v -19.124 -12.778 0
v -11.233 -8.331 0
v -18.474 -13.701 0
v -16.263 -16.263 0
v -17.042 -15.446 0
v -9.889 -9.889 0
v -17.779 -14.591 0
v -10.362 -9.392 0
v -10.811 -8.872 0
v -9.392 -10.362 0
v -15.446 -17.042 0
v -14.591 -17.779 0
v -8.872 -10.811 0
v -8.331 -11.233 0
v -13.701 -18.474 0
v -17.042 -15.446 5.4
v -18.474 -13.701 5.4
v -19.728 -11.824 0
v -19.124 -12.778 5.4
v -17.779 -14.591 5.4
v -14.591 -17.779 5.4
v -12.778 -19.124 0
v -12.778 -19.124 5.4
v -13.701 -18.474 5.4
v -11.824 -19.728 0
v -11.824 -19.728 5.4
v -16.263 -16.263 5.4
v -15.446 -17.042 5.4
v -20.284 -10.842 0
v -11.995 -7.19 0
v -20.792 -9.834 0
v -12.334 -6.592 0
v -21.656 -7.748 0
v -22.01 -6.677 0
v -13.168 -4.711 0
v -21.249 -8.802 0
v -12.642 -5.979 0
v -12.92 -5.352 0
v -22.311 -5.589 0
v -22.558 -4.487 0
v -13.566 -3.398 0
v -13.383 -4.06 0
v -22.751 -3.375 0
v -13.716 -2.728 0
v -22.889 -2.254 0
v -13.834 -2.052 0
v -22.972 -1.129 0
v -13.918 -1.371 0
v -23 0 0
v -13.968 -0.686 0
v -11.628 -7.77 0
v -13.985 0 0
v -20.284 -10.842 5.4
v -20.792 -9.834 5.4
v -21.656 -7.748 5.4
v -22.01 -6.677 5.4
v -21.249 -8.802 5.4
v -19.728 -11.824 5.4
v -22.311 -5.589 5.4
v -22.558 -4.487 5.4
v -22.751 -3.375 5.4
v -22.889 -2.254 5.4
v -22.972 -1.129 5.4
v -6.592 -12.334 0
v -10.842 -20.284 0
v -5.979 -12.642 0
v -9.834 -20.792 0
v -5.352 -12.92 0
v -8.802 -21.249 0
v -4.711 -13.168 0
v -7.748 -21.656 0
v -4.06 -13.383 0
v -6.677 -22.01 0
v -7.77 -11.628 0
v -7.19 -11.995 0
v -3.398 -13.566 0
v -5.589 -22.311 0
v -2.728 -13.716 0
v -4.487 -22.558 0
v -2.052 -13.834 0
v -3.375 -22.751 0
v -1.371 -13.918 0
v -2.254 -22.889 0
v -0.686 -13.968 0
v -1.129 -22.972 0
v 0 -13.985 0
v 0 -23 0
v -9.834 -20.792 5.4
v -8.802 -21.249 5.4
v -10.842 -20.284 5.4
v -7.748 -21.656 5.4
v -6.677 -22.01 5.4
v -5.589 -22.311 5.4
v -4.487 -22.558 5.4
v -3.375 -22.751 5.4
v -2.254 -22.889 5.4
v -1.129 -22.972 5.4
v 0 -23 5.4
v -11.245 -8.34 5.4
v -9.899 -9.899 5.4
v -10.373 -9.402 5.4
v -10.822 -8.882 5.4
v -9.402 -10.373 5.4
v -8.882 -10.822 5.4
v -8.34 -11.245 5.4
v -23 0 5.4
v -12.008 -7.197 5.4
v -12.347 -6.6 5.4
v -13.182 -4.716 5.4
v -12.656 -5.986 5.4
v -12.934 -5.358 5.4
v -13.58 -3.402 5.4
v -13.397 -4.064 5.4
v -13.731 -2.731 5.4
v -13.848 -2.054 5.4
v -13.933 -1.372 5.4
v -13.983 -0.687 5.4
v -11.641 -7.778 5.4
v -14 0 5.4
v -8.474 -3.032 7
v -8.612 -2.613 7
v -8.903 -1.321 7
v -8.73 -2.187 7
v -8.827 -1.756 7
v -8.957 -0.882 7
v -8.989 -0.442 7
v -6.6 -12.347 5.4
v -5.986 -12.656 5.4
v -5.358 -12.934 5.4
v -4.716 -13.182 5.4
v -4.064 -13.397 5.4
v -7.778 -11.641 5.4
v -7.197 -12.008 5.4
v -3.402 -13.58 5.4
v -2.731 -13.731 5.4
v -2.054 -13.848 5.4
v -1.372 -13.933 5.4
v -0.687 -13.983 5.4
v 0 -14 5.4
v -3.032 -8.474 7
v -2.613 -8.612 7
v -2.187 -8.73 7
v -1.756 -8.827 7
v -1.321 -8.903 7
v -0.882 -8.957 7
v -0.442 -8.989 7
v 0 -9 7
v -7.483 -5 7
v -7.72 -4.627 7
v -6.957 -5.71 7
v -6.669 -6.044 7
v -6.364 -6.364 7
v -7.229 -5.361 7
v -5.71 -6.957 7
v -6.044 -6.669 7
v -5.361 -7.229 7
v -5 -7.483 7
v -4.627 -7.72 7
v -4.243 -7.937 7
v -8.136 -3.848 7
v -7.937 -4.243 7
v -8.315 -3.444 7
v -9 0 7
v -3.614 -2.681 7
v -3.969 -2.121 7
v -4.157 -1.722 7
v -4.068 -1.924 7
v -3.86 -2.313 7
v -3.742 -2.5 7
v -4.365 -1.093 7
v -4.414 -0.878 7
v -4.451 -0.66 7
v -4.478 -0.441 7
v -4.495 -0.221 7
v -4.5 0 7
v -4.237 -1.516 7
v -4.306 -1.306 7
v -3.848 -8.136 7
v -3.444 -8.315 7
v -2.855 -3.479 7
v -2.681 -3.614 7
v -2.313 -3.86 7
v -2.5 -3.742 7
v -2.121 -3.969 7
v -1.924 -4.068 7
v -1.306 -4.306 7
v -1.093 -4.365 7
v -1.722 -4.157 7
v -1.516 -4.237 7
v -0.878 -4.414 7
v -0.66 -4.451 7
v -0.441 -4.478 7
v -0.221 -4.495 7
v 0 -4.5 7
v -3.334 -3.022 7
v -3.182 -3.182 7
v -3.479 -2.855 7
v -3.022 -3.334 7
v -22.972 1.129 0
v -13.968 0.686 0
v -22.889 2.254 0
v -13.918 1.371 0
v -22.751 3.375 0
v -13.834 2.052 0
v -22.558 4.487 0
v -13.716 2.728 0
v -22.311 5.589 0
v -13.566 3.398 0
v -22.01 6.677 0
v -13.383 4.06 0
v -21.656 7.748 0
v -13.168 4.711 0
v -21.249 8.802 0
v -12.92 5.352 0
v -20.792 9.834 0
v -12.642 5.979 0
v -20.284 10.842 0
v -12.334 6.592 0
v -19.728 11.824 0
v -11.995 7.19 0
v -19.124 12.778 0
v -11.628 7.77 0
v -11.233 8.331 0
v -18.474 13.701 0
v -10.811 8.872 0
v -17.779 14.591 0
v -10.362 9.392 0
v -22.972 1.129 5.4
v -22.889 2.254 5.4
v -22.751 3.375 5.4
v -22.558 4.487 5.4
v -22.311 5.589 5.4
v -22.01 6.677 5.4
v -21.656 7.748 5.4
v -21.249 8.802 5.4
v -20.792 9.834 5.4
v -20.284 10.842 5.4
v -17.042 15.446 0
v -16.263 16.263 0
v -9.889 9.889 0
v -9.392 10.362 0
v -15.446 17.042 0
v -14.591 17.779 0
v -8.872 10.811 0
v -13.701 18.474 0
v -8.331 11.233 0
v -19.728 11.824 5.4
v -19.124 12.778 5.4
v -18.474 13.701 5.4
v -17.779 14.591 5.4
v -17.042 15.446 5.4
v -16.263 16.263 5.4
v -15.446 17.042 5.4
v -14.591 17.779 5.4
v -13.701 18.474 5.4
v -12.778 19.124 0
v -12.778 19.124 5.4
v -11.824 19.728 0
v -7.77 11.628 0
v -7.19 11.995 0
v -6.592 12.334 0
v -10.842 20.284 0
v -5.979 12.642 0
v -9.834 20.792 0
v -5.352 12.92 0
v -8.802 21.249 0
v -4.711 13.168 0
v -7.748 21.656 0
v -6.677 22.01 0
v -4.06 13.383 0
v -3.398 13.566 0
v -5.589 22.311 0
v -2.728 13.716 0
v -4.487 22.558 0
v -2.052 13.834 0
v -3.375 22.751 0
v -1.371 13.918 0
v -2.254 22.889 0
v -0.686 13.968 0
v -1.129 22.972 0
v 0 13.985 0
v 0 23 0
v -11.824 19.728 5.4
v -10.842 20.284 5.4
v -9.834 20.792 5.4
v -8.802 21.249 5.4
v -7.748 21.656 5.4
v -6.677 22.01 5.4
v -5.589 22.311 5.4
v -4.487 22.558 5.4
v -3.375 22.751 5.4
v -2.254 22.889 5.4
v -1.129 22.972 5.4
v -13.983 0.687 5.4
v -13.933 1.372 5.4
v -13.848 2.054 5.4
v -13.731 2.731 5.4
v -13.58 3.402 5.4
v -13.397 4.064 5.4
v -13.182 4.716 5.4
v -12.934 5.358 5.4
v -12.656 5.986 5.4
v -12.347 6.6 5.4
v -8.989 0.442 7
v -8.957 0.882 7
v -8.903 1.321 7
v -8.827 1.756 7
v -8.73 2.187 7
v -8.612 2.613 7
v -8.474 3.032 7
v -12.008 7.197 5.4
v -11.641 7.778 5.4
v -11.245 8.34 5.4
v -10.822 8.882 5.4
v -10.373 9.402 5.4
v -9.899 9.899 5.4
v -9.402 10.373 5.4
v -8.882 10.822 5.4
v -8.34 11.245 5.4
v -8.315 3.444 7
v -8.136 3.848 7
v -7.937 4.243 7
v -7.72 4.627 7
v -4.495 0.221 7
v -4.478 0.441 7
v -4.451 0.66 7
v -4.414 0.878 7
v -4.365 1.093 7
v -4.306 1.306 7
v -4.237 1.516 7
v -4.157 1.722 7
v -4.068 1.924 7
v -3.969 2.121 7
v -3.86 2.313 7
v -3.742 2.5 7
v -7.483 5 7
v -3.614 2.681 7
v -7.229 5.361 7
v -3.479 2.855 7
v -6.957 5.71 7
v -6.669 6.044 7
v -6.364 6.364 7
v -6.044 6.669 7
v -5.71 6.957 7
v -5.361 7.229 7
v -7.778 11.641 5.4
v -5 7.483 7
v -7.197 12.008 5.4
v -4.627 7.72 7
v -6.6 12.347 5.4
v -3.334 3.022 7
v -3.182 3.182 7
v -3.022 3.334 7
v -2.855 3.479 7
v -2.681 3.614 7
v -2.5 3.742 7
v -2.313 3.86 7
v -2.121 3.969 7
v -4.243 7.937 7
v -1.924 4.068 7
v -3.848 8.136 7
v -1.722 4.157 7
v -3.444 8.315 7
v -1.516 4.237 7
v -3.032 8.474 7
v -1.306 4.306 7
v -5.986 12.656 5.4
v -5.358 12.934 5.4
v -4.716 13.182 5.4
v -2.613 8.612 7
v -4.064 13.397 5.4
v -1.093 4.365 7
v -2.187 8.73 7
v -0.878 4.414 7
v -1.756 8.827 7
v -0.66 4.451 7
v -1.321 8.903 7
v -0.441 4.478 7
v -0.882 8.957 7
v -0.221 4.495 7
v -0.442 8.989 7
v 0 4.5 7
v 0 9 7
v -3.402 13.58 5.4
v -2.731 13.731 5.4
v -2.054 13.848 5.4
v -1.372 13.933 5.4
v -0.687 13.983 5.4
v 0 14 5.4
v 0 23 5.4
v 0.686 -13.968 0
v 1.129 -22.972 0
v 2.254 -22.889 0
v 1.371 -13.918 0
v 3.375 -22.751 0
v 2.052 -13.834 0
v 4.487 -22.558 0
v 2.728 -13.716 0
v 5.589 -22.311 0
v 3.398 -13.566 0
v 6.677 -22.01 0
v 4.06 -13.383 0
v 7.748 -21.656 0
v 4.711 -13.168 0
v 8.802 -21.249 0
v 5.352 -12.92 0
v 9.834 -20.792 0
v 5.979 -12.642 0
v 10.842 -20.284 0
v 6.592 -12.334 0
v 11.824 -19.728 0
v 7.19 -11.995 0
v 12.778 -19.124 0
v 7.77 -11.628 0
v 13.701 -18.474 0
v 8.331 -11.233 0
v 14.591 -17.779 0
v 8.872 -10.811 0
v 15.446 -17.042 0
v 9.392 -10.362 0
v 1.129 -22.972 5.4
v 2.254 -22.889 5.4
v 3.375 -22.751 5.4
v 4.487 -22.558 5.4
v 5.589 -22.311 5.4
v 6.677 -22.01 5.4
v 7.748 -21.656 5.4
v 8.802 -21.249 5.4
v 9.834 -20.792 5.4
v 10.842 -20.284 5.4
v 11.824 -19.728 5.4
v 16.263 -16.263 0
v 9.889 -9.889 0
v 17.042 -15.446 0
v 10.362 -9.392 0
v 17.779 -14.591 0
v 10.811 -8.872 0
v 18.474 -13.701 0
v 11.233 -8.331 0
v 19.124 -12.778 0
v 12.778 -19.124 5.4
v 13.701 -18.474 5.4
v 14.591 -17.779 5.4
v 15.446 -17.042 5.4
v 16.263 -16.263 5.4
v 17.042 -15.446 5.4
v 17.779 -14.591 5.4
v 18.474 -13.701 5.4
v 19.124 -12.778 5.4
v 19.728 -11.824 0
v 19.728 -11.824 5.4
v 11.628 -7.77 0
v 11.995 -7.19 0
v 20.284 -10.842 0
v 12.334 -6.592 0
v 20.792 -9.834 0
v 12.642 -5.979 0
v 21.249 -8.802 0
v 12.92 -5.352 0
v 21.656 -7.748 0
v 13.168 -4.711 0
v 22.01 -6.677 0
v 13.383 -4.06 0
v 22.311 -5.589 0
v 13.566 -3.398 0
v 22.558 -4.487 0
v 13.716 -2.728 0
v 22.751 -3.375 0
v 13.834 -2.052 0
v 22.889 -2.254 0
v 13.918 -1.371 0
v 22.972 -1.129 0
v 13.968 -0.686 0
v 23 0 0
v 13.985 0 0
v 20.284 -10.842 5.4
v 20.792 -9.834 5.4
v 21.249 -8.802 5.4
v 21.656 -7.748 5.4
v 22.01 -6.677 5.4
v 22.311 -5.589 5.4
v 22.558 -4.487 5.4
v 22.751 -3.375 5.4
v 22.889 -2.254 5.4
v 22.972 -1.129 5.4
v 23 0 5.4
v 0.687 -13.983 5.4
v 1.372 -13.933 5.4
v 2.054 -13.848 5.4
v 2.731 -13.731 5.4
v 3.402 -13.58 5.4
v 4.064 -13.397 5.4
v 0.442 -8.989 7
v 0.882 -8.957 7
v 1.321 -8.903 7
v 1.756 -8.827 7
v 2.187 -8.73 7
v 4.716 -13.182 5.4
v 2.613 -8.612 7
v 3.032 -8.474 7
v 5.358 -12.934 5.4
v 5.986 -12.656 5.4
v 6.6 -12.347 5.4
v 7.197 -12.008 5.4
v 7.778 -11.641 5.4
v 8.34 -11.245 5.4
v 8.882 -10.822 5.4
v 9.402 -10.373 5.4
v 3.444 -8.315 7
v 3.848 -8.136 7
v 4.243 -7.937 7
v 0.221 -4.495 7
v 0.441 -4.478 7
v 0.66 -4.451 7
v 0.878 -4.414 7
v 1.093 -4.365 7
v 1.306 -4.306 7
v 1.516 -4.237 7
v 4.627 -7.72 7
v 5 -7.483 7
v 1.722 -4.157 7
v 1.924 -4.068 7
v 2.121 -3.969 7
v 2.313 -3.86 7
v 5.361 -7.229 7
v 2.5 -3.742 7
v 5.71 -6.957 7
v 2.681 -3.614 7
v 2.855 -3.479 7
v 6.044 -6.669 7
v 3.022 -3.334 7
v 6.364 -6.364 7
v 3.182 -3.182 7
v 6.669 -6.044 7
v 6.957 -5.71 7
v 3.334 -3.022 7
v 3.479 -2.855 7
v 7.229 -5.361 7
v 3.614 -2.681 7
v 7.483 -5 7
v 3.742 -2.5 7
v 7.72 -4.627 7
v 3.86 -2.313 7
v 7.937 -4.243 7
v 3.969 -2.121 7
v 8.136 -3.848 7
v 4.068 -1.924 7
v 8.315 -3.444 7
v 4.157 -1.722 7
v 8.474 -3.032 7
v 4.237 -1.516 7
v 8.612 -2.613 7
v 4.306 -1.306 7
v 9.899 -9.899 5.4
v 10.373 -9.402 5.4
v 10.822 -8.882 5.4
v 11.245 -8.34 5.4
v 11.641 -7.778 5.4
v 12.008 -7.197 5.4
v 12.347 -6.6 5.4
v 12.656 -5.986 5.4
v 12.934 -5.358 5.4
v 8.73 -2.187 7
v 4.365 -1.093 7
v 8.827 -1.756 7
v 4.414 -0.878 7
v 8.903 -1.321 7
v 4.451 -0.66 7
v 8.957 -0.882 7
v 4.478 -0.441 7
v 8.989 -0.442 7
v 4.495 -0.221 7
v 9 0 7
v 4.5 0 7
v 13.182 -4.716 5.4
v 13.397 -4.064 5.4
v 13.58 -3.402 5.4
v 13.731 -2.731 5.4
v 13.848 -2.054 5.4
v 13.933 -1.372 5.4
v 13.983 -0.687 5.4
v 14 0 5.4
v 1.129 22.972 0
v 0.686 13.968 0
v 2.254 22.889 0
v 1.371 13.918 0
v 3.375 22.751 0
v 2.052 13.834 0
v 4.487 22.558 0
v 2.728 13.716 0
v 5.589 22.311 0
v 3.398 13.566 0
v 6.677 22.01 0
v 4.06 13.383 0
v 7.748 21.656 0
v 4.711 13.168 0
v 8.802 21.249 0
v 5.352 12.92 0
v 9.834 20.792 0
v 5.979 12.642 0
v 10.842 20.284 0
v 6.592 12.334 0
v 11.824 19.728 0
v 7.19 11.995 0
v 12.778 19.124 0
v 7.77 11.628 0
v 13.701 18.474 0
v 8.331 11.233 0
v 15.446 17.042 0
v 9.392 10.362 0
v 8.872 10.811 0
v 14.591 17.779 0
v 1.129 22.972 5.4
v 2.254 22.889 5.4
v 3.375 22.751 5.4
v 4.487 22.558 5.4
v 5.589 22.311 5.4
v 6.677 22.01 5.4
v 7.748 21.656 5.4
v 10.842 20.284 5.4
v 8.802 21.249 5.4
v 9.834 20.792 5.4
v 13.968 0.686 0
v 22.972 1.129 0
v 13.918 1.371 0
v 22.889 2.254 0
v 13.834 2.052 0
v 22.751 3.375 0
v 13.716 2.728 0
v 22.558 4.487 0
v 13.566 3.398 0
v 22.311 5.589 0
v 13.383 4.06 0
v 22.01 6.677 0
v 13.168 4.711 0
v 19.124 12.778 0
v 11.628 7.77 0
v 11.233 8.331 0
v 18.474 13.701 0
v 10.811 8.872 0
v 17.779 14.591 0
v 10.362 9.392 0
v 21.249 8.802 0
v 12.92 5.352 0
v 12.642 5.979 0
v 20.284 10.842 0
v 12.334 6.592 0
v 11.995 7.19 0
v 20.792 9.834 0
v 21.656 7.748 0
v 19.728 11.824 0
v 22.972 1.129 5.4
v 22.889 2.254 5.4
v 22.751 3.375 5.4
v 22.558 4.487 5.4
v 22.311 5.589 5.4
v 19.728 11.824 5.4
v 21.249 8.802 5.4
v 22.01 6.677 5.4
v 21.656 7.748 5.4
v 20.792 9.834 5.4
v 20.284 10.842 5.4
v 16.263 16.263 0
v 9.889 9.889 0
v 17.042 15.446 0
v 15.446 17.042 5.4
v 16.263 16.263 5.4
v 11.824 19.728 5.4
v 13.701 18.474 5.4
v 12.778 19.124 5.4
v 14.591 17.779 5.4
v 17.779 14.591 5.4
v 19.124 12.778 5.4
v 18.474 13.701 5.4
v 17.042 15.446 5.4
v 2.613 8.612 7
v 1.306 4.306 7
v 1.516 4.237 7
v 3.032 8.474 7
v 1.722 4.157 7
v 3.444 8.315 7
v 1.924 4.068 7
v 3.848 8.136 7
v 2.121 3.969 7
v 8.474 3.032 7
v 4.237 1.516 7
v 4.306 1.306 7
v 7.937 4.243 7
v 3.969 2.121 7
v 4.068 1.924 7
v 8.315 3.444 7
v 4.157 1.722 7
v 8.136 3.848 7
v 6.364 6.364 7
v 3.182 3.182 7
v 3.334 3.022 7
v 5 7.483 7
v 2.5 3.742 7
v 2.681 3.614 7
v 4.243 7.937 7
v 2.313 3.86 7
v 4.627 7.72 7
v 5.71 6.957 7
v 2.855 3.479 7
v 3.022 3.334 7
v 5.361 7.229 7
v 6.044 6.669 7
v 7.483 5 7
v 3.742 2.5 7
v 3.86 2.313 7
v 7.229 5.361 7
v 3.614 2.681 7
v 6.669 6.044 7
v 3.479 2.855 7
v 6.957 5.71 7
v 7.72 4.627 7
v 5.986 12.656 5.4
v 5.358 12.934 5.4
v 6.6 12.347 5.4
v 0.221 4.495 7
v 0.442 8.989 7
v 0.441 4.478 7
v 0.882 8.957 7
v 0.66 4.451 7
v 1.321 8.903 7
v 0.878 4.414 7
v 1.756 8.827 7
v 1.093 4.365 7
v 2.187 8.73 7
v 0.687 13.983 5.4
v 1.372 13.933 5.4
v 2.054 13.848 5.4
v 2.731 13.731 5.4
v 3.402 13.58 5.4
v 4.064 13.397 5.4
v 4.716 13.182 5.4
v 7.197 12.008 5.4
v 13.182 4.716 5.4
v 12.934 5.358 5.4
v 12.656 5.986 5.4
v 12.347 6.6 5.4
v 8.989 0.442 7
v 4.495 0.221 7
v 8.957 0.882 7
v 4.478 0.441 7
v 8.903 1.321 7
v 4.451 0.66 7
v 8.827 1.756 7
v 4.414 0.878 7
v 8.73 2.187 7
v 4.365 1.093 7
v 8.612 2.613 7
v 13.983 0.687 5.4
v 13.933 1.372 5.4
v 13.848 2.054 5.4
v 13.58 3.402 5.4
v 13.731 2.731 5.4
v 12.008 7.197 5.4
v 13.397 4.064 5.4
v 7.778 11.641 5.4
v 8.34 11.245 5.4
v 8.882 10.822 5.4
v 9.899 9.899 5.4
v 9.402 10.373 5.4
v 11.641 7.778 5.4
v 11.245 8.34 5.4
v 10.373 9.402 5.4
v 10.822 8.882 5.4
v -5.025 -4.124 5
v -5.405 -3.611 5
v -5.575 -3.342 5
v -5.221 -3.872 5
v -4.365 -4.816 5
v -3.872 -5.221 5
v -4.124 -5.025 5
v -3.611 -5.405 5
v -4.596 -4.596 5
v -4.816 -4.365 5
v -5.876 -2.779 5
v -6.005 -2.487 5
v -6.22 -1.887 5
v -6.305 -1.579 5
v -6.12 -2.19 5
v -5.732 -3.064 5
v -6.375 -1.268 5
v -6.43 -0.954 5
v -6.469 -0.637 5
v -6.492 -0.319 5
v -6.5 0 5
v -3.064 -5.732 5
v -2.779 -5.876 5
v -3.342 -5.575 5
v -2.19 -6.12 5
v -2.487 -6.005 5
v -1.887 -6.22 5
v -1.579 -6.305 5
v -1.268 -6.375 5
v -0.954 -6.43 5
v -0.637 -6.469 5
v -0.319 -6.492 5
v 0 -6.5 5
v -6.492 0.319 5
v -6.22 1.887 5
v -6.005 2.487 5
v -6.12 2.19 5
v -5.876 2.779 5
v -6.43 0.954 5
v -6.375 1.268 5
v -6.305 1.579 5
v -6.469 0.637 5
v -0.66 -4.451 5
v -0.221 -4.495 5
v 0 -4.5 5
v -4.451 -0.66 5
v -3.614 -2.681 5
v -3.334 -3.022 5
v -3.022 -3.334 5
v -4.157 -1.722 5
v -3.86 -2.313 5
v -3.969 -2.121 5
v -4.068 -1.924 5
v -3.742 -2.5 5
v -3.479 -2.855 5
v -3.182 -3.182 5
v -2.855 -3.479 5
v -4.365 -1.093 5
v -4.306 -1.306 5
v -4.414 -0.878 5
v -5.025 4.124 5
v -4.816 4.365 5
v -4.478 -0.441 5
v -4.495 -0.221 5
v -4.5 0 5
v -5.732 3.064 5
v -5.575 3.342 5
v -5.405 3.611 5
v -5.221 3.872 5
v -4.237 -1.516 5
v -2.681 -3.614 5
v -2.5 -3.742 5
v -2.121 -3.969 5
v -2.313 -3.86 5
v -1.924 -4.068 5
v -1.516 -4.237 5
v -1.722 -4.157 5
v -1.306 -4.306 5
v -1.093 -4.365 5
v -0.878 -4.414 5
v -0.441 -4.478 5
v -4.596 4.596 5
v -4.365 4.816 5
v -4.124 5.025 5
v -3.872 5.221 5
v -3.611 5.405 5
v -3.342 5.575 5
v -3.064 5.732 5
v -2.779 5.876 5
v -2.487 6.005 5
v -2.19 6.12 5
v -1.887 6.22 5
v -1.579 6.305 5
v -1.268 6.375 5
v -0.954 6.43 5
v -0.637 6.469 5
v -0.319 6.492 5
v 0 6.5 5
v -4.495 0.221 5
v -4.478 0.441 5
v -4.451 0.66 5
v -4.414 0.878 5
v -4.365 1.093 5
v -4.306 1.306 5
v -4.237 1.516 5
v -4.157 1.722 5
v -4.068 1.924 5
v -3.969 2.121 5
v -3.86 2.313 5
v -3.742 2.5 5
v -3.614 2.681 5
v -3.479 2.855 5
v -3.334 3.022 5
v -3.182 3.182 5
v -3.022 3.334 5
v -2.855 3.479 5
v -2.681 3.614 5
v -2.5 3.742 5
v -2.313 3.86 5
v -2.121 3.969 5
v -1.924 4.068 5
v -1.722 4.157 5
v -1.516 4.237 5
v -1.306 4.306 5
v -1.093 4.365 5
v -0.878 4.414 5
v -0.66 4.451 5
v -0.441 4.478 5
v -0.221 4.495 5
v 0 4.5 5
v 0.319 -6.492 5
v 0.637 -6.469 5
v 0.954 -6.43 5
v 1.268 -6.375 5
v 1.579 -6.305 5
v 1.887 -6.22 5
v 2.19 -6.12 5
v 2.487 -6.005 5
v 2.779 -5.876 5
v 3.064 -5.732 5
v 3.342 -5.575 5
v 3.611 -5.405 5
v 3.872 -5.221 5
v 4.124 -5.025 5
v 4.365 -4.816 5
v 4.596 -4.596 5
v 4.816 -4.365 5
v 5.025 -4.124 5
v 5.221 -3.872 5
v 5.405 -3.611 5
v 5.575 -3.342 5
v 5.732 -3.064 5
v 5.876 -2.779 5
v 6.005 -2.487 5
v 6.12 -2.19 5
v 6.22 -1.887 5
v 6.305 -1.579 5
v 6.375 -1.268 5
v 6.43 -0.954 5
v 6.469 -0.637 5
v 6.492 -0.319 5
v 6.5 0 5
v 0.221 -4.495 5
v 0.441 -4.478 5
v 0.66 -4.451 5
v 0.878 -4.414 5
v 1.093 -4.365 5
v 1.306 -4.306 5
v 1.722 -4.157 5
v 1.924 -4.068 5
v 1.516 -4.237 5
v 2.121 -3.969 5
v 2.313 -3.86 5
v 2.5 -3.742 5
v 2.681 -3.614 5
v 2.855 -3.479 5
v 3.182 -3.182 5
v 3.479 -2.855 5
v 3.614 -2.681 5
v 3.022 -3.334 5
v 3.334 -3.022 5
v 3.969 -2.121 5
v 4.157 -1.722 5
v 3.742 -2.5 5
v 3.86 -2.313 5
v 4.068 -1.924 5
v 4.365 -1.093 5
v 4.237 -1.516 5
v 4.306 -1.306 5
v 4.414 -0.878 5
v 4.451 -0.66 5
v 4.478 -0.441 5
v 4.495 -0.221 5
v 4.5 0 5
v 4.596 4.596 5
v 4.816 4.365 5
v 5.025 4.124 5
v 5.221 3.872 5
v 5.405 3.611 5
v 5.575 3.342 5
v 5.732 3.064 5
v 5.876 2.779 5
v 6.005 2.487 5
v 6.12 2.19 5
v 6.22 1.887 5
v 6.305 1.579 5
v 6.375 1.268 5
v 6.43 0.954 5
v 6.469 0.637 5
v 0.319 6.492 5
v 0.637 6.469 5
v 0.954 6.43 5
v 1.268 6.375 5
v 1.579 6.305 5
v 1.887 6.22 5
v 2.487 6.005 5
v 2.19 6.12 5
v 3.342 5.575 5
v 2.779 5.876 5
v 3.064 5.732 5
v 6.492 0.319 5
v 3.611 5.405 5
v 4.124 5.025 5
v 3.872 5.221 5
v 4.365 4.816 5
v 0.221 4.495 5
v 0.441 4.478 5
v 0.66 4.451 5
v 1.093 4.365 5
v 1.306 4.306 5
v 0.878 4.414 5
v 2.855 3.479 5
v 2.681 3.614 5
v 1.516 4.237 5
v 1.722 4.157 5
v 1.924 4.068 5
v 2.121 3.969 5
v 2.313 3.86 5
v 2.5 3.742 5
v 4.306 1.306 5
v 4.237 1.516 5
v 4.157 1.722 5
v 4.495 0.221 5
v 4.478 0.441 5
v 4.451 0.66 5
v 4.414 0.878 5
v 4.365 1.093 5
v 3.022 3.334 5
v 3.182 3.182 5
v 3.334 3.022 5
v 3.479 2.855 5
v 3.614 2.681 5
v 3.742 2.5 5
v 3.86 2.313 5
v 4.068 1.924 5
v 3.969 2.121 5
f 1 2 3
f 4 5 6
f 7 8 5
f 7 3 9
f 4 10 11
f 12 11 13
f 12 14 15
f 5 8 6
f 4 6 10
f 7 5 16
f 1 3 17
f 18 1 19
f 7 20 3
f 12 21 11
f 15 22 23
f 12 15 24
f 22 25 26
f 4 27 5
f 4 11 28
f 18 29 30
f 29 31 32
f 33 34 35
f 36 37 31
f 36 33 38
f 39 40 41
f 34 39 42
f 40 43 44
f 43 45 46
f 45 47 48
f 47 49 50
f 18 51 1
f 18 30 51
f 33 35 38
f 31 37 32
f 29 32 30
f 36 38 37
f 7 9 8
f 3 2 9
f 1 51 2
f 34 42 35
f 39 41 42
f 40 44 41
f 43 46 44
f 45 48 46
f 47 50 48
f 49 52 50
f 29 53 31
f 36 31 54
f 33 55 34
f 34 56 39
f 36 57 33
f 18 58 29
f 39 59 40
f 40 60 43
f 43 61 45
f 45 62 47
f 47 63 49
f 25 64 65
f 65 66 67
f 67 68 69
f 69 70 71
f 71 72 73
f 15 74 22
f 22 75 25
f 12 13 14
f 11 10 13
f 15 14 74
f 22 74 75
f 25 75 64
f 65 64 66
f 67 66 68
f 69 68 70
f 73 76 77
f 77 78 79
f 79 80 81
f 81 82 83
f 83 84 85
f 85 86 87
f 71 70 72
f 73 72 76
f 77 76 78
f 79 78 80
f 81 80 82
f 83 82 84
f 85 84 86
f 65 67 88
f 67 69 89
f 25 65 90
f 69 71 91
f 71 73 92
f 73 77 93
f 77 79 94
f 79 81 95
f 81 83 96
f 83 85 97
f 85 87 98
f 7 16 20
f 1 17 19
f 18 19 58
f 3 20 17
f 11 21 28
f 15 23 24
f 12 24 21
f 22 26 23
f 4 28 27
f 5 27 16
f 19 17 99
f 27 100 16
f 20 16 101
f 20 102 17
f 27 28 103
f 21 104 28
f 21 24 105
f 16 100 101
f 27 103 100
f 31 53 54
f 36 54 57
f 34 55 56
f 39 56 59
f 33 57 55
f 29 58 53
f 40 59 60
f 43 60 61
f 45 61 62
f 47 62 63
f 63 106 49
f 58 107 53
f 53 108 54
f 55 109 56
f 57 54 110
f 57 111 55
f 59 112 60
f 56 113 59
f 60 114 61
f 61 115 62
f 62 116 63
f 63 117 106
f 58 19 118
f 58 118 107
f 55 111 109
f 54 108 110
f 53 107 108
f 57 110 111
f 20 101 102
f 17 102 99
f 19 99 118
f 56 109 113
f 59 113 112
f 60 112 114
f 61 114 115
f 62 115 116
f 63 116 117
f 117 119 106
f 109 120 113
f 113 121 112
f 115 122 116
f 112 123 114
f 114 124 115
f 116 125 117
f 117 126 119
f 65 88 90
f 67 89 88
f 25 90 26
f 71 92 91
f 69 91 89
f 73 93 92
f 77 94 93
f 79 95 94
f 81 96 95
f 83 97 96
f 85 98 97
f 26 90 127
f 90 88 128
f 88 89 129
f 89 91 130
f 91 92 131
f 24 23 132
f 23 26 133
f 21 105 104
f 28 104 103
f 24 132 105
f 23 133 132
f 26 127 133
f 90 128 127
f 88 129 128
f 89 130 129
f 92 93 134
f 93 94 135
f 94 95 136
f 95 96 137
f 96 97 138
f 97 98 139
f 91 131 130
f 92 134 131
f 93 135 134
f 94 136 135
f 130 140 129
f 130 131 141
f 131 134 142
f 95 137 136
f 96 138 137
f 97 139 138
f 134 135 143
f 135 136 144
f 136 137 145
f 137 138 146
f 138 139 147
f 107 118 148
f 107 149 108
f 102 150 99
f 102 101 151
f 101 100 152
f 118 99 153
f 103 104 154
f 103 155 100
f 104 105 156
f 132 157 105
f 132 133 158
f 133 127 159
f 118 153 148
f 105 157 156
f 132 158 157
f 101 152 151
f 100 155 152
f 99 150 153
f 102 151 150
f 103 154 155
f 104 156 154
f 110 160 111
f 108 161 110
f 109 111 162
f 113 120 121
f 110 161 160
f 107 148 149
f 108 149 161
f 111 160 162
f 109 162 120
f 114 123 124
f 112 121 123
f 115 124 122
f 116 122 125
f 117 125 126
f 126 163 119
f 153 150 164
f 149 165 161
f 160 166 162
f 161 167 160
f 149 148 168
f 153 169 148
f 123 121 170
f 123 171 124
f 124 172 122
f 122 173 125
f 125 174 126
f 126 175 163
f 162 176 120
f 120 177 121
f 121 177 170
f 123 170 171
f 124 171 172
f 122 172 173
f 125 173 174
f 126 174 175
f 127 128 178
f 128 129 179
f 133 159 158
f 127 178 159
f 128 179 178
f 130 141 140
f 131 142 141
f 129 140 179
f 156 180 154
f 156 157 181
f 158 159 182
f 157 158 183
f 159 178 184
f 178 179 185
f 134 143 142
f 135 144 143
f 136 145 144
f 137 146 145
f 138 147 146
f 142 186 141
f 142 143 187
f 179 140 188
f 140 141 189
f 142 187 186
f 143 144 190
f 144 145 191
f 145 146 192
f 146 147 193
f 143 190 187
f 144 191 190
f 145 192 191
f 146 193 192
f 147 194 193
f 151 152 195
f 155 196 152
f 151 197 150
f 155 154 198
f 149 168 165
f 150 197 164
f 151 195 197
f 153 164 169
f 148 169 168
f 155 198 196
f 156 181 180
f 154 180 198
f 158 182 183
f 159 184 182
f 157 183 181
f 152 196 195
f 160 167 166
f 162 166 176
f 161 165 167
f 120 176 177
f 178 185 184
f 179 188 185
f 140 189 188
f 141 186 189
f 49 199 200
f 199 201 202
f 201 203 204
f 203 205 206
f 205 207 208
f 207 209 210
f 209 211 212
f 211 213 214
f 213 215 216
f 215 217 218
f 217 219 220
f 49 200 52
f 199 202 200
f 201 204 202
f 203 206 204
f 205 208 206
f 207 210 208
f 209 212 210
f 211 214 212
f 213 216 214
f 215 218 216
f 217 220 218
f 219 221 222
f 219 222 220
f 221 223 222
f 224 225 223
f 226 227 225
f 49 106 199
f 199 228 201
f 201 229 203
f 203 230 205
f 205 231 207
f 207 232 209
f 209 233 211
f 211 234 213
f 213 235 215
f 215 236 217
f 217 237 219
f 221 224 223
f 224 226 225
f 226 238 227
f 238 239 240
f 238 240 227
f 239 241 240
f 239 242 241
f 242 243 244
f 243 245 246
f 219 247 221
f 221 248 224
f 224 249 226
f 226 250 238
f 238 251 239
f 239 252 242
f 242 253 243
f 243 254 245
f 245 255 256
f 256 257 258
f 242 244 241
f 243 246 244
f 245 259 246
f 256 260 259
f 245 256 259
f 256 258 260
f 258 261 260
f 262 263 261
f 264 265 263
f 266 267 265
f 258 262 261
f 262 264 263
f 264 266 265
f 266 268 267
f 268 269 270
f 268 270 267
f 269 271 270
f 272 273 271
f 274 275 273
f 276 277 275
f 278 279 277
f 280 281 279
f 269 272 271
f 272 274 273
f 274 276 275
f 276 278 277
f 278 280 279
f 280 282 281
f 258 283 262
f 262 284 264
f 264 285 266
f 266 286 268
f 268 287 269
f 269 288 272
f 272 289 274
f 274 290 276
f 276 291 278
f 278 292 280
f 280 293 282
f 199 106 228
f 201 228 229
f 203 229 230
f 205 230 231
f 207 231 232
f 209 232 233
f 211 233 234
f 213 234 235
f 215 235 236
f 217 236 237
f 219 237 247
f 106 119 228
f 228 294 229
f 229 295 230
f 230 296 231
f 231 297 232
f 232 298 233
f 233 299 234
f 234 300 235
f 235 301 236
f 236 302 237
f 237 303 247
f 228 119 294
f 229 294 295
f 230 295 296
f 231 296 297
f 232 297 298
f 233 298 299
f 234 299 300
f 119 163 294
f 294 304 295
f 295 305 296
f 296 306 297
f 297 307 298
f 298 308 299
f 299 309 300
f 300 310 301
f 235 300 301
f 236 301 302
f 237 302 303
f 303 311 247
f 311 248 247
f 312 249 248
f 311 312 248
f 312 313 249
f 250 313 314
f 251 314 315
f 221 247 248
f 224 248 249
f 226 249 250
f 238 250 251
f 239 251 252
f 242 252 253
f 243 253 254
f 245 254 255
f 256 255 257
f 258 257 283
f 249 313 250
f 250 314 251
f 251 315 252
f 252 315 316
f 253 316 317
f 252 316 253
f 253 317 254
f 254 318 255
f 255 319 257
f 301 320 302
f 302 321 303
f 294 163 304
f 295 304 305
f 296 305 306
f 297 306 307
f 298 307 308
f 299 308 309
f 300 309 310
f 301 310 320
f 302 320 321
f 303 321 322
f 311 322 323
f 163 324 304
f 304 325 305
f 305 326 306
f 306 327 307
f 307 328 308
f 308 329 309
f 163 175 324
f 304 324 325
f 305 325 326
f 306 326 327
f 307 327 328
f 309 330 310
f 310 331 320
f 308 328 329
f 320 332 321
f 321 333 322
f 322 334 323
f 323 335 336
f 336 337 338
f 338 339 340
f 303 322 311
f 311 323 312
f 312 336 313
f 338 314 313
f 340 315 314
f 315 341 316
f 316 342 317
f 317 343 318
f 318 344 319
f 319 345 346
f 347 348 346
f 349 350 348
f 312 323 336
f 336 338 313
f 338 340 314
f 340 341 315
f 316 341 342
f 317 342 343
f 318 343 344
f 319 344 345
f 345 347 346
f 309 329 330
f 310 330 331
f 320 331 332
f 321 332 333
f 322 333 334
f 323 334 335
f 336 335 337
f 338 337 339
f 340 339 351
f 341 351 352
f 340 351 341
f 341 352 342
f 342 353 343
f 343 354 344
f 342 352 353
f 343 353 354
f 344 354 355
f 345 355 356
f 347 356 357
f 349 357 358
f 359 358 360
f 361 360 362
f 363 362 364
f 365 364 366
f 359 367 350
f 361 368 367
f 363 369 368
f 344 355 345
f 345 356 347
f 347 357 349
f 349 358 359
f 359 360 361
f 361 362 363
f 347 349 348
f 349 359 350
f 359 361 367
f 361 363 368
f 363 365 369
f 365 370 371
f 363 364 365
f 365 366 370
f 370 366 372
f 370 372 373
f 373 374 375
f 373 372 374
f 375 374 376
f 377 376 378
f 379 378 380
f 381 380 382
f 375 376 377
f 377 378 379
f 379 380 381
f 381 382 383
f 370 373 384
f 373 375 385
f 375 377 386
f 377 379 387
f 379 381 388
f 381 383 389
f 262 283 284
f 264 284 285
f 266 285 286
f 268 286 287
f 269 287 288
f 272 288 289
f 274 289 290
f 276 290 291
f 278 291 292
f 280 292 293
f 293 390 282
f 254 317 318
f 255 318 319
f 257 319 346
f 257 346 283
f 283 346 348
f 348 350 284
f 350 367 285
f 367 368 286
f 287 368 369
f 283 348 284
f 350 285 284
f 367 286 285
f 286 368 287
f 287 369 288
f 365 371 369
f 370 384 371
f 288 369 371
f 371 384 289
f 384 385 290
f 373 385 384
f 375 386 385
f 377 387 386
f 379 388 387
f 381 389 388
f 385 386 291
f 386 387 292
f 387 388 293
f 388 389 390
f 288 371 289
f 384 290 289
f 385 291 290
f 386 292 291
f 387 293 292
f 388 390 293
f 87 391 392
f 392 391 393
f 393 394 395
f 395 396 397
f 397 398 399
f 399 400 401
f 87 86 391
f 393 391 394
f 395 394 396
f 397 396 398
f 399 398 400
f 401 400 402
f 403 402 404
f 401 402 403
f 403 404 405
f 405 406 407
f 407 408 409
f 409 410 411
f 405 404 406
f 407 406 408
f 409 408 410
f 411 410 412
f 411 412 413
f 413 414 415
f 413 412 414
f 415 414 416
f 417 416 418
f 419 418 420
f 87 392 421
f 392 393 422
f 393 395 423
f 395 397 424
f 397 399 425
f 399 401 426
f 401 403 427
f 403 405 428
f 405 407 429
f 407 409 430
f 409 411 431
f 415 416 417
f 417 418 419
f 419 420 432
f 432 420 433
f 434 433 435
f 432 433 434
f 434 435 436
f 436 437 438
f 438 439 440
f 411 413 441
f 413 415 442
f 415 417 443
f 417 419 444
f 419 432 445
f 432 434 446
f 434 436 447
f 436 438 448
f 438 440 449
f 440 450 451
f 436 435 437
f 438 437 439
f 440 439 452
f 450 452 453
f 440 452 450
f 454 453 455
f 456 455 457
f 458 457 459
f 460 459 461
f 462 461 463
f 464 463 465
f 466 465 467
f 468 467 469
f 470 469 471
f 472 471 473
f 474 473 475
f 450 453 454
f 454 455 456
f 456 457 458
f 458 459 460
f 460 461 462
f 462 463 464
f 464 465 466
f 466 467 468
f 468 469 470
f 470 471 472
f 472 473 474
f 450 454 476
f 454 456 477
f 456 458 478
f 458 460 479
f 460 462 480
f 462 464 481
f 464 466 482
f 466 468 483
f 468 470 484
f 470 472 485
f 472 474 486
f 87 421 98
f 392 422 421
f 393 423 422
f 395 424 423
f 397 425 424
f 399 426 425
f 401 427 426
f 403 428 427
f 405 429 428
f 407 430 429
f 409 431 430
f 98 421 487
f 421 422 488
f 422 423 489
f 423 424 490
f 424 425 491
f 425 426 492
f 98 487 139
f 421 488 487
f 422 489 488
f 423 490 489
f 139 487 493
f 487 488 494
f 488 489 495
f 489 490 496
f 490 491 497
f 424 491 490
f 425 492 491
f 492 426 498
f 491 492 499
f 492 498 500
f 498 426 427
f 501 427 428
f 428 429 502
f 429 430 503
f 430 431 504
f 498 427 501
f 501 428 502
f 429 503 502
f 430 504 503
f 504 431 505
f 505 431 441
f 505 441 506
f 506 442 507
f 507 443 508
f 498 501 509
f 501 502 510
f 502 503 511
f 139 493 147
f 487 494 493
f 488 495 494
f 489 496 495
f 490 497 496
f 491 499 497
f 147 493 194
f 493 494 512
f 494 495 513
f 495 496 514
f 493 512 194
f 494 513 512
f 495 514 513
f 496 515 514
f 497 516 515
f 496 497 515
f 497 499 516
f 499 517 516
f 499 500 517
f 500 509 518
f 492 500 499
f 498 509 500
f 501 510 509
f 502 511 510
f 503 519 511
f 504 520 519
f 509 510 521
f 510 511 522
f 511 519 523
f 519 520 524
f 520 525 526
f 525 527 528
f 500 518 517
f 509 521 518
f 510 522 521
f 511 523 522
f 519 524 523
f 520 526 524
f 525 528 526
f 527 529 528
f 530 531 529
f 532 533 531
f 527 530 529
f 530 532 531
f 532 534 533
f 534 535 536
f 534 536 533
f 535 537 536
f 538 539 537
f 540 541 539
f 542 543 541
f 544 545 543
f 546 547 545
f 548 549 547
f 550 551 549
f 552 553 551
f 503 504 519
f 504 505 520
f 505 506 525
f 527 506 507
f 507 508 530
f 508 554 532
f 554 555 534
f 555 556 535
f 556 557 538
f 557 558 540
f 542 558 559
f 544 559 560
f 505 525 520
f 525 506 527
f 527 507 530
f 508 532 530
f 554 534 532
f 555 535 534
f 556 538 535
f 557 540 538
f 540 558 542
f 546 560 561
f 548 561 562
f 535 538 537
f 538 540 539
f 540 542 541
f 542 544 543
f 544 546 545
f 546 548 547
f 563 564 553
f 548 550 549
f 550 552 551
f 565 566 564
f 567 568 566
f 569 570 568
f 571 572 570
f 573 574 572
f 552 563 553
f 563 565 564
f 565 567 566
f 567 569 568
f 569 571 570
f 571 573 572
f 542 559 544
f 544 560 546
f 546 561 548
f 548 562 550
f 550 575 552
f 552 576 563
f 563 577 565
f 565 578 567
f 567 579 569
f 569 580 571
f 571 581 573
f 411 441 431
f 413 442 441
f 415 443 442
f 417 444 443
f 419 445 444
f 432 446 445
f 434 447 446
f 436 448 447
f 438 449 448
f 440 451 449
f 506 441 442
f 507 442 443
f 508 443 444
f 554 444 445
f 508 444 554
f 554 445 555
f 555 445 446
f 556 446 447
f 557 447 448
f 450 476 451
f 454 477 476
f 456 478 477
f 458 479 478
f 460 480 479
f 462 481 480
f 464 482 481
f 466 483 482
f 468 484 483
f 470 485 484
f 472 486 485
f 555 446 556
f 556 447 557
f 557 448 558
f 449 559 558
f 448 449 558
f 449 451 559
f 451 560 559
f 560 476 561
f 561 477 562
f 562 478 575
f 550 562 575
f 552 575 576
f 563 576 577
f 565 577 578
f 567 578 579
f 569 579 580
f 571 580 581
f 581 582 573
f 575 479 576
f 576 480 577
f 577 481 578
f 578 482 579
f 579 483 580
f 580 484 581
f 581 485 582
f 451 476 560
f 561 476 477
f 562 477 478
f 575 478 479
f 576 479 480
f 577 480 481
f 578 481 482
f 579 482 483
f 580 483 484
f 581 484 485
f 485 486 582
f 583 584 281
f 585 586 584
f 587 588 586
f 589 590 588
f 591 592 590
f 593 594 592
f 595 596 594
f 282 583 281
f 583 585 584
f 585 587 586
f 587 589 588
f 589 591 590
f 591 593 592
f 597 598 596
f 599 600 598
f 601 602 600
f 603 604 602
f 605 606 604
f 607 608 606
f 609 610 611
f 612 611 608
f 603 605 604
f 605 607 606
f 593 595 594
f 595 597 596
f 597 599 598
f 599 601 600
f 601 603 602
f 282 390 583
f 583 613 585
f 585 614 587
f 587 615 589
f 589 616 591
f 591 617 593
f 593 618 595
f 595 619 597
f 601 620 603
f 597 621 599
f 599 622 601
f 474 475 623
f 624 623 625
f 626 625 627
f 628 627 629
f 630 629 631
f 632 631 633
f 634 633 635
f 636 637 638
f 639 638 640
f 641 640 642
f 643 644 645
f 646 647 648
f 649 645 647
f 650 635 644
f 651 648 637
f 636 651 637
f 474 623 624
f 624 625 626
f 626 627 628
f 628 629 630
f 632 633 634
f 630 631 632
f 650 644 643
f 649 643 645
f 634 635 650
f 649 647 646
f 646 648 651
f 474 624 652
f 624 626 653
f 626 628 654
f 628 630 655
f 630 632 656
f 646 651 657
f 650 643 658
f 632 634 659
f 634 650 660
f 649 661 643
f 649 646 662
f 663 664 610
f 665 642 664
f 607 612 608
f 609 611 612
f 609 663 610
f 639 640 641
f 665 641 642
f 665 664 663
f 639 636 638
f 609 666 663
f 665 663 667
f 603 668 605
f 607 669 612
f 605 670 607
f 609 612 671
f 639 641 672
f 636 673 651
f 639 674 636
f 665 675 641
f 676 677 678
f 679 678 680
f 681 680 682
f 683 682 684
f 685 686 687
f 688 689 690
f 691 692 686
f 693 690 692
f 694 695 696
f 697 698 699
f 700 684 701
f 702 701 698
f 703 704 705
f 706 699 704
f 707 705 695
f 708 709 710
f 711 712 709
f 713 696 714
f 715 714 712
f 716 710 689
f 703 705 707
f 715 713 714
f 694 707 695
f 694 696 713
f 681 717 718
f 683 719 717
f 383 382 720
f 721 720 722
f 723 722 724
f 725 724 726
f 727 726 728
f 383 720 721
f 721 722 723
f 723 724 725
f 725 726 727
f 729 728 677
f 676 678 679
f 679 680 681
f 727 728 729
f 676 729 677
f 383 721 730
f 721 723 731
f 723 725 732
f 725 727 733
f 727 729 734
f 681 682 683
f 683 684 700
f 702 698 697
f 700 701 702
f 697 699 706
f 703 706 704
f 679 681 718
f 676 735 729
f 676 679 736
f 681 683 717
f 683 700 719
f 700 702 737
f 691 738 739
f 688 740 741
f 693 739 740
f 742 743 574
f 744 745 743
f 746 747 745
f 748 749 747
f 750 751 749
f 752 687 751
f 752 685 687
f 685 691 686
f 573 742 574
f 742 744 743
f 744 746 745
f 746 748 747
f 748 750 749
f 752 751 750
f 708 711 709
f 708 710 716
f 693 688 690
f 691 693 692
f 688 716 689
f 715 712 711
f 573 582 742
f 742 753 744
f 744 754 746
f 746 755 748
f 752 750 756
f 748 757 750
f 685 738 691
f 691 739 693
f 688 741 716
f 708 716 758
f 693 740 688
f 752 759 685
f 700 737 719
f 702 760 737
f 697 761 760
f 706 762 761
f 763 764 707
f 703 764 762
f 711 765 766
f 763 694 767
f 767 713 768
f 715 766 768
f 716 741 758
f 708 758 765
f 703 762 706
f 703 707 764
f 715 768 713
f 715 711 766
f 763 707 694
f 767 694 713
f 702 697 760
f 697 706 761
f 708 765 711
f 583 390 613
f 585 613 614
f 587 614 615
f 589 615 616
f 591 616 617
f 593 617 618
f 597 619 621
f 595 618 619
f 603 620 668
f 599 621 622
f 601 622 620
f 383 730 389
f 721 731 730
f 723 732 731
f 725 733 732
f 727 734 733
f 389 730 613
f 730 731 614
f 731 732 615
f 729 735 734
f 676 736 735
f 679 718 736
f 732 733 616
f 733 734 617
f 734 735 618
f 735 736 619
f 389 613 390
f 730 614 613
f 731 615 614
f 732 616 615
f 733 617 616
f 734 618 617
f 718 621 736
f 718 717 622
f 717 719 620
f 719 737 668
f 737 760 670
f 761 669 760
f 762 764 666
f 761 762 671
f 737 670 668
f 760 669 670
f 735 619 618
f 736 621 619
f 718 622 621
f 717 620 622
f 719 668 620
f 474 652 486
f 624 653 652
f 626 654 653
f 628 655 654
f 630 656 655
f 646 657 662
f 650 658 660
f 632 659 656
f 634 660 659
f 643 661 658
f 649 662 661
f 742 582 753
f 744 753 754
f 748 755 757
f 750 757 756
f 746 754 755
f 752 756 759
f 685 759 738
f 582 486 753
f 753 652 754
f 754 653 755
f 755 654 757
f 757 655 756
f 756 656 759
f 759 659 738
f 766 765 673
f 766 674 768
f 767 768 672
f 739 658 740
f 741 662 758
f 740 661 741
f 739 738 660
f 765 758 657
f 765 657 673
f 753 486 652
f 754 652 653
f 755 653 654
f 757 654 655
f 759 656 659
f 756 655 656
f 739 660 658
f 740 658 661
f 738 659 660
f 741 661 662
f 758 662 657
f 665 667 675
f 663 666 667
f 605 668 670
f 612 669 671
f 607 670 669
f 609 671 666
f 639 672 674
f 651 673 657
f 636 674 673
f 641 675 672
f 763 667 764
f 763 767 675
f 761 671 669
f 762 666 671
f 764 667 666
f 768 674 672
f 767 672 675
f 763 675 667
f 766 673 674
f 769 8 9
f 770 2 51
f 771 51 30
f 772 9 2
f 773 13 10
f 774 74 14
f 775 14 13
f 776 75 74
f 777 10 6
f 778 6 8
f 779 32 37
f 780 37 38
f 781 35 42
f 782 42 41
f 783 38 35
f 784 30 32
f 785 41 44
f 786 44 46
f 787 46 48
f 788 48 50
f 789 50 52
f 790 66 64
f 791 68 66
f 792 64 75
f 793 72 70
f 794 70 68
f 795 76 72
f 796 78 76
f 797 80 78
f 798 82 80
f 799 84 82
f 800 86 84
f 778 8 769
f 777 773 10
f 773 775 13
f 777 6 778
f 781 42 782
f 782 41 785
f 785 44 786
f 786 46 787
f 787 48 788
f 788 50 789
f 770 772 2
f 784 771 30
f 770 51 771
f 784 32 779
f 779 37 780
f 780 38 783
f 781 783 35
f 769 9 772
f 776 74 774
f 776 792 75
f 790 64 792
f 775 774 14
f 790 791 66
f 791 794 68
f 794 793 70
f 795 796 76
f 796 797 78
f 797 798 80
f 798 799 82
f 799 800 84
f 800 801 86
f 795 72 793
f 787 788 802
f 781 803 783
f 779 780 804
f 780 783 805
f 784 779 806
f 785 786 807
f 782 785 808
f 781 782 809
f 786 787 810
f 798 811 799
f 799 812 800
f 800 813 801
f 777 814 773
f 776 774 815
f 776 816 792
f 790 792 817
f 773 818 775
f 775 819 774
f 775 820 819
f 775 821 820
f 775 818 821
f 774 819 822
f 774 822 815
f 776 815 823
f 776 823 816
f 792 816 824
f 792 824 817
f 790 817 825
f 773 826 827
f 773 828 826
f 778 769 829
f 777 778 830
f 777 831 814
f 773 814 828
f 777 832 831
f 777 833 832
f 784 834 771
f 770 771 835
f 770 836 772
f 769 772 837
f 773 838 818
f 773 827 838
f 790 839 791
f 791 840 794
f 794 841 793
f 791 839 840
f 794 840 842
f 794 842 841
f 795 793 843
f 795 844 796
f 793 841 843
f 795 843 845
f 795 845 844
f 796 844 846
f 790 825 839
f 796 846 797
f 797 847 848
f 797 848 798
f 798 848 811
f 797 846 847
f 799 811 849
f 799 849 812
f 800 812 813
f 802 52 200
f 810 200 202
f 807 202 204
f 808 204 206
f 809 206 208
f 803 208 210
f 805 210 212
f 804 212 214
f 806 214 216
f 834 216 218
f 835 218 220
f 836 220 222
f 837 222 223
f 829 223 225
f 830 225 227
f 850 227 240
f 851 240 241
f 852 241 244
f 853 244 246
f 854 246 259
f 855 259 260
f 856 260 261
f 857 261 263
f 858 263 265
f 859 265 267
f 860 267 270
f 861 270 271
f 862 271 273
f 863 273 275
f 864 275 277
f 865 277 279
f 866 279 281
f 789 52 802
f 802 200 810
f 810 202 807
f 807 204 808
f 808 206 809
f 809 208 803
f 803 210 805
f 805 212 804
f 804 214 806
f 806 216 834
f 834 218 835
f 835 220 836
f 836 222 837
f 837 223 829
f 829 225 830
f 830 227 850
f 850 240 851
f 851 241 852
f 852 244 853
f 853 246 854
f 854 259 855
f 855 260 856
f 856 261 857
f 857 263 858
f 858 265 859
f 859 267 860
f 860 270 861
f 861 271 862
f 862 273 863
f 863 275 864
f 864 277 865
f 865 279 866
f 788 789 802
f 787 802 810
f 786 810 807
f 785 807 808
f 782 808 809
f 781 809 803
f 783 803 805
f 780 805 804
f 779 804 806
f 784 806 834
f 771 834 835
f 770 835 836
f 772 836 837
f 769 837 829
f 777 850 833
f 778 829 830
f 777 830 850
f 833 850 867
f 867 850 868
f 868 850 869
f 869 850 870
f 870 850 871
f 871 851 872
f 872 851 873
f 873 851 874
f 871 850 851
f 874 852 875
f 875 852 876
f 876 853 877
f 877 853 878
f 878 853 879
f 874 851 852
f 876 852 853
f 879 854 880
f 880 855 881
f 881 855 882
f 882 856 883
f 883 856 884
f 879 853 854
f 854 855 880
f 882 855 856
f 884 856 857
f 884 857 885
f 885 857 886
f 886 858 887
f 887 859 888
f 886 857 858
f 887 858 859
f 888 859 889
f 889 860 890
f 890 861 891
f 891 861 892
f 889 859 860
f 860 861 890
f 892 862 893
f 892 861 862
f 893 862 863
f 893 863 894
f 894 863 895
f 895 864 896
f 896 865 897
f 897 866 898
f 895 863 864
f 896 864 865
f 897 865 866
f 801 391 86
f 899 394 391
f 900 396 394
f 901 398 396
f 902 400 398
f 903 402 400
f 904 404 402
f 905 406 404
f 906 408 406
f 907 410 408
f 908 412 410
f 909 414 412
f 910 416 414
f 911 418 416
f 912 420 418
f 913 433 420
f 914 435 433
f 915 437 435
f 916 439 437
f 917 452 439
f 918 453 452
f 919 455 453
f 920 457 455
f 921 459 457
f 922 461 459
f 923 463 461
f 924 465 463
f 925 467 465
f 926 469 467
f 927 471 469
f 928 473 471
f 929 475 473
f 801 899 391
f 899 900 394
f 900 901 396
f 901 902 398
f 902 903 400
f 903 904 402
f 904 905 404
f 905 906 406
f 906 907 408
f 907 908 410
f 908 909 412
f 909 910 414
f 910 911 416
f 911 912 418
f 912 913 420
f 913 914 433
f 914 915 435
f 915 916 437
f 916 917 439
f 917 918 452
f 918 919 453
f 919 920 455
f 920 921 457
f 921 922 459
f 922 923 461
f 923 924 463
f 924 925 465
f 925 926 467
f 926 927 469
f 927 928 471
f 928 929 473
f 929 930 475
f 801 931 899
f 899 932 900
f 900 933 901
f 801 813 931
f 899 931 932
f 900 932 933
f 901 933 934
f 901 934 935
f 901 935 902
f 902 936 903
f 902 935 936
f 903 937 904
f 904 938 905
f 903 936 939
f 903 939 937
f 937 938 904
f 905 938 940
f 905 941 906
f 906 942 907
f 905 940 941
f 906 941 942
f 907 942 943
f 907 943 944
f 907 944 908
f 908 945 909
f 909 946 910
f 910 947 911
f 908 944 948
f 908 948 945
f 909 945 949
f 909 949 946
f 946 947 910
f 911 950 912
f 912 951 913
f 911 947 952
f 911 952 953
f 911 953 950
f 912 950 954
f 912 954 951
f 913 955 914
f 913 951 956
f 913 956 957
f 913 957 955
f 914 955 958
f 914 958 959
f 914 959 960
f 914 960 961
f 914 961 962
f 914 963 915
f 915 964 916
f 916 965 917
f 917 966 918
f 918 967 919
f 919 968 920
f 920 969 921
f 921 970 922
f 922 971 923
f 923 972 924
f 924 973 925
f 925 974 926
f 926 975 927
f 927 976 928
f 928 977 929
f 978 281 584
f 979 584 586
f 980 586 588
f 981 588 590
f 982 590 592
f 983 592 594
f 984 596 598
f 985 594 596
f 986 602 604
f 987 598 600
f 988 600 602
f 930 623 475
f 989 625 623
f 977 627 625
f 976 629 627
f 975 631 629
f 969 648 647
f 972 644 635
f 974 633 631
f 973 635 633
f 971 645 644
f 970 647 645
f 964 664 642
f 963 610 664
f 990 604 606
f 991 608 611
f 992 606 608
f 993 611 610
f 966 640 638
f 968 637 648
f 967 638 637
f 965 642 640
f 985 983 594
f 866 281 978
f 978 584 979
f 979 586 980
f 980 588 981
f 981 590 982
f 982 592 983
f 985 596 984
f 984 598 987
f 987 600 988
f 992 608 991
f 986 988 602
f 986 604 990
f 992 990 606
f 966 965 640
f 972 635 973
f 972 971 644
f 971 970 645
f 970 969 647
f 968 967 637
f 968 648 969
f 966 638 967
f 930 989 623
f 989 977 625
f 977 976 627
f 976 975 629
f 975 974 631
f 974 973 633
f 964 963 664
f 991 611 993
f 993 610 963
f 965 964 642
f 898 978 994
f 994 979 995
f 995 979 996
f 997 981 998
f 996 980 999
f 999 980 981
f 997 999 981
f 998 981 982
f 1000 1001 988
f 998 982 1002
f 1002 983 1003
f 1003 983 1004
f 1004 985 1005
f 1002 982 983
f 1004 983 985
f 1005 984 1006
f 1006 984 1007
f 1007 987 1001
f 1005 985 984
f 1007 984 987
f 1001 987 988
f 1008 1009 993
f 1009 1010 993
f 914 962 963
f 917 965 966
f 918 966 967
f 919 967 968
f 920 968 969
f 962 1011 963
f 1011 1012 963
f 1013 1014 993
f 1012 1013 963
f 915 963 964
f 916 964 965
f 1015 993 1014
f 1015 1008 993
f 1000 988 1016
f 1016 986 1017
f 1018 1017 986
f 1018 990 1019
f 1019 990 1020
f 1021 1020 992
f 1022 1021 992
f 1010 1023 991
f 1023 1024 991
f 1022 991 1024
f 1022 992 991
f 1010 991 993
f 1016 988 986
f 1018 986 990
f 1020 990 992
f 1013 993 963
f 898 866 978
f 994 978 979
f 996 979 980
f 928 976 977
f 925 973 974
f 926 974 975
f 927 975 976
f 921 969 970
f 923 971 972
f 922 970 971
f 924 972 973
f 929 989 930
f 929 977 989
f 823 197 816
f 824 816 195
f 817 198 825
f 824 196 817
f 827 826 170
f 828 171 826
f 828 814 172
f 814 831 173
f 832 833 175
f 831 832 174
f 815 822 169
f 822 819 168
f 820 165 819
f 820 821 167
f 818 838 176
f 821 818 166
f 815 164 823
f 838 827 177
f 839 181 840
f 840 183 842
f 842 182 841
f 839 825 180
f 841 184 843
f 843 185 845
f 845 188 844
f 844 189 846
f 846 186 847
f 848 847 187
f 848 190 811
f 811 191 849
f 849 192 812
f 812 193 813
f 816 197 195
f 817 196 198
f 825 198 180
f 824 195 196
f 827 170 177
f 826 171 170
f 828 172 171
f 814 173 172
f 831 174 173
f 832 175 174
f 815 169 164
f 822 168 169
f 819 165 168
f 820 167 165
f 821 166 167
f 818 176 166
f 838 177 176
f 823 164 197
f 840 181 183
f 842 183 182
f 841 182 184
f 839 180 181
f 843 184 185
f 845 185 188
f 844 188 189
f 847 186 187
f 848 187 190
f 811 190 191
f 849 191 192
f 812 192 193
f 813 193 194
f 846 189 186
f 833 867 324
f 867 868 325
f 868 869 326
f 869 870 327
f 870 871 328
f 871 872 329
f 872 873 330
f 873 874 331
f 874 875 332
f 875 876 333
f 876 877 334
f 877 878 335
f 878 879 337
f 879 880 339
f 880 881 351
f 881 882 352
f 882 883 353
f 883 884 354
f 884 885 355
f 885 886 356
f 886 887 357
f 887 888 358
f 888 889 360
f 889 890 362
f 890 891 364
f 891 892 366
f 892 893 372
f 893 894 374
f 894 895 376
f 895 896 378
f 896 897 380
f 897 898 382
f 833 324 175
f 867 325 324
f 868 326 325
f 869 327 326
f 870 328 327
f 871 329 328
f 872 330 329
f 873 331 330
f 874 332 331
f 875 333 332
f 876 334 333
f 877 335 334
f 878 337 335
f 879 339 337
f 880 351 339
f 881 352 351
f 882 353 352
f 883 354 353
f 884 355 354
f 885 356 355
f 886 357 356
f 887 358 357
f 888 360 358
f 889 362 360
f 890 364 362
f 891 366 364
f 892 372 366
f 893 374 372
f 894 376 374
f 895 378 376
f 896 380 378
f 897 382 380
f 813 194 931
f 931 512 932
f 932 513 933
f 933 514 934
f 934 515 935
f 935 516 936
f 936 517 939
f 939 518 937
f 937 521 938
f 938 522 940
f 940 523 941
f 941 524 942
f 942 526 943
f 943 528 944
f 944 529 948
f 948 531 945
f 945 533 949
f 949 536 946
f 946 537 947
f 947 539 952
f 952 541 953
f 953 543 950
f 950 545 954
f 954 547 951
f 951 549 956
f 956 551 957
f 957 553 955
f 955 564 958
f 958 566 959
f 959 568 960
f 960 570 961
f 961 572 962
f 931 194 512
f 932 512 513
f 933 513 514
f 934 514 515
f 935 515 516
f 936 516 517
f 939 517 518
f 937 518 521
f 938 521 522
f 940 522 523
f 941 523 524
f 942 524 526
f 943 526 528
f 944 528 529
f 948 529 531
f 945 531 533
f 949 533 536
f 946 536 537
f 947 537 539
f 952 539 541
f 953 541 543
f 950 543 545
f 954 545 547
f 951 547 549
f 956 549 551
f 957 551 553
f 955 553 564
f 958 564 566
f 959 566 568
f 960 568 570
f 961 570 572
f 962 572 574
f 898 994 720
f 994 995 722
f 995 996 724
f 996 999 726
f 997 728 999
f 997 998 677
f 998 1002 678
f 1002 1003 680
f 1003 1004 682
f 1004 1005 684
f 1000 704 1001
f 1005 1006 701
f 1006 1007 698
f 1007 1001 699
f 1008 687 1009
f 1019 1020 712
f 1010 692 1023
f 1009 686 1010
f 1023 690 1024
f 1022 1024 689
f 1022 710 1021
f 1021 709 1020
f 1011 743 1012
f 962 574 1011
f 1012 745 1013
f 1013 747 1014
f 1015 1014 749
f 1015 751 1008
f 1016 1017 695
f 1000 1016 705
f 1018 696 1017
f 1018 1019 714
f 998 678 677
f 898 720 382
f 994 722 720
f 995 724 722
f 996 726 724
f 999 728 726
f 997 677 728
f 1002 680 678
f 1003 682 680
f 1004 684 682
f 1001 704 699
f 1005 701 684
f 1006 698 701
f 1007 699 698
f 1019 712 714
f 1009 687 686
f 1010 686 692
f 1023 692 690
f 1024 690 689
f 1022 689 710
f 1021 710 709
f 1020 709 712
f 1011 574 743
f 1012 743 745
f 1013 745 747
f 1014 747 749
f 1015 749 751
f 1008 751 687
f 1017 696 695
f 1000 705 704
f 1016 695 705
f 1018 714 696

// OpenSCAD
// ============================================================================
// Telephone-Booth - microphone mount
//   A round disc that drops into the mouthpiece of an NE 233 handset in place
//   of the original built-in carbon microphone. It carries a small electret
//   condenser capsule, glued into the centre through-hole.
//
//   Profile (revolved, Z up, disc rests on the receiver at Z = 0):
//     * 46 mm outer diameter.
//     * A flat outer rim (the outer ~9 mm from the edge) that sits ON the
//       receiver, 5.4 mm thick.
//     * From ~9 mm in from the edge the body thickens toward the centre, up to
//       7 mm, forming a raised central boss.
//     * The underside recesses in the centre (a wide, deep dip) so the electret
//       capsule sits nestled below the rest face. The dip bottoms out on a flat
//       ledge so the capsule seats squarely.
//     * A 9 mm round through-hole at the centre holds the capsule (glued in).
//
// Render:
//   openscad -o microphone-mount.stl microphone-mount.scad
//   openscad -D section=true ... microphone-mount.scad   (half-section preview)
// ============================================================================

$fn = 128;

/* [Overall] */
disc_d      = 46;    // outer diameter
rim_th      = 5.4;   // thickness of the flat rim that rests on the receiver
boss_th     = 7;     // thickness at the raised central boss
rim_flat_w  = 9;     // width of the flat rim (from the edge inward) before it
                     // starts thickening toward the centre
boss_top_d  = 18;    // flat-top diameter of the boss (shoulder ramps up to here)

/* [Microphone dip - underside] */
mic_hole_d  = 9;     // centre through-hole - electret capsule glued in here
dip_open_d  = 28;    // diameter where the dip opens on the bottom face
dip_depth   = 5.0;   // how deep the dip sinks in from the bottom face
seat_d      = 13;    // flat ledge diameter at the top of the dip; the capsule
                     // seats against the annulus between here and the hole

/* [Preview] */
section     = false; // set true to render a half-section (dev preview only)

/* [Fit] */
eps = 0.01;

// ---------------------------------------------------------------------------

module microphone_mount() {
    r_out   = disc_d / 2;
    r_flat  = r_out - rim_flat_w;          // where the rim ends / boss begins
    r_hole  = mic_hole_d / 2;
    r_top   = boss_top_d / 2;
    r_open  = dip_open_d / 2;
    r_seat  = seat_d / 2;

    difference() {
        // Solid body of revolution: flat rim that ramps up to a taller boss.
        rotate_extrude()
            polygon(points = [
                [0,       0],
                [r_out,   0],
                [r_out,   rim_th],
                [r_flat,  rim_th],
                [r_top,   boss_th],   // top of the boss shoulder
                [0,       boss_th],
            ]);

        // Underside dip: a wide, deep recess funnelling up from the bottom face
        // to a flat ledge, so the mic drops in and seats squarely.
        translate([0, 0, -eps])
            cylinder(h = dip_depth + eps, r1 = r_open, r2 = r_seat);

        // Centre through-hole for the electret capsule.
        translate([0, 0, -eps])
            cylinder(h = boss_th + 2 * eps, r = r_hole);
    }
}

if (section)
    difference() {
        microphone_mount();
        translate([-50, 0, -5]) cube([100, 50, 30]);
    }
else
    microphone_mount();
